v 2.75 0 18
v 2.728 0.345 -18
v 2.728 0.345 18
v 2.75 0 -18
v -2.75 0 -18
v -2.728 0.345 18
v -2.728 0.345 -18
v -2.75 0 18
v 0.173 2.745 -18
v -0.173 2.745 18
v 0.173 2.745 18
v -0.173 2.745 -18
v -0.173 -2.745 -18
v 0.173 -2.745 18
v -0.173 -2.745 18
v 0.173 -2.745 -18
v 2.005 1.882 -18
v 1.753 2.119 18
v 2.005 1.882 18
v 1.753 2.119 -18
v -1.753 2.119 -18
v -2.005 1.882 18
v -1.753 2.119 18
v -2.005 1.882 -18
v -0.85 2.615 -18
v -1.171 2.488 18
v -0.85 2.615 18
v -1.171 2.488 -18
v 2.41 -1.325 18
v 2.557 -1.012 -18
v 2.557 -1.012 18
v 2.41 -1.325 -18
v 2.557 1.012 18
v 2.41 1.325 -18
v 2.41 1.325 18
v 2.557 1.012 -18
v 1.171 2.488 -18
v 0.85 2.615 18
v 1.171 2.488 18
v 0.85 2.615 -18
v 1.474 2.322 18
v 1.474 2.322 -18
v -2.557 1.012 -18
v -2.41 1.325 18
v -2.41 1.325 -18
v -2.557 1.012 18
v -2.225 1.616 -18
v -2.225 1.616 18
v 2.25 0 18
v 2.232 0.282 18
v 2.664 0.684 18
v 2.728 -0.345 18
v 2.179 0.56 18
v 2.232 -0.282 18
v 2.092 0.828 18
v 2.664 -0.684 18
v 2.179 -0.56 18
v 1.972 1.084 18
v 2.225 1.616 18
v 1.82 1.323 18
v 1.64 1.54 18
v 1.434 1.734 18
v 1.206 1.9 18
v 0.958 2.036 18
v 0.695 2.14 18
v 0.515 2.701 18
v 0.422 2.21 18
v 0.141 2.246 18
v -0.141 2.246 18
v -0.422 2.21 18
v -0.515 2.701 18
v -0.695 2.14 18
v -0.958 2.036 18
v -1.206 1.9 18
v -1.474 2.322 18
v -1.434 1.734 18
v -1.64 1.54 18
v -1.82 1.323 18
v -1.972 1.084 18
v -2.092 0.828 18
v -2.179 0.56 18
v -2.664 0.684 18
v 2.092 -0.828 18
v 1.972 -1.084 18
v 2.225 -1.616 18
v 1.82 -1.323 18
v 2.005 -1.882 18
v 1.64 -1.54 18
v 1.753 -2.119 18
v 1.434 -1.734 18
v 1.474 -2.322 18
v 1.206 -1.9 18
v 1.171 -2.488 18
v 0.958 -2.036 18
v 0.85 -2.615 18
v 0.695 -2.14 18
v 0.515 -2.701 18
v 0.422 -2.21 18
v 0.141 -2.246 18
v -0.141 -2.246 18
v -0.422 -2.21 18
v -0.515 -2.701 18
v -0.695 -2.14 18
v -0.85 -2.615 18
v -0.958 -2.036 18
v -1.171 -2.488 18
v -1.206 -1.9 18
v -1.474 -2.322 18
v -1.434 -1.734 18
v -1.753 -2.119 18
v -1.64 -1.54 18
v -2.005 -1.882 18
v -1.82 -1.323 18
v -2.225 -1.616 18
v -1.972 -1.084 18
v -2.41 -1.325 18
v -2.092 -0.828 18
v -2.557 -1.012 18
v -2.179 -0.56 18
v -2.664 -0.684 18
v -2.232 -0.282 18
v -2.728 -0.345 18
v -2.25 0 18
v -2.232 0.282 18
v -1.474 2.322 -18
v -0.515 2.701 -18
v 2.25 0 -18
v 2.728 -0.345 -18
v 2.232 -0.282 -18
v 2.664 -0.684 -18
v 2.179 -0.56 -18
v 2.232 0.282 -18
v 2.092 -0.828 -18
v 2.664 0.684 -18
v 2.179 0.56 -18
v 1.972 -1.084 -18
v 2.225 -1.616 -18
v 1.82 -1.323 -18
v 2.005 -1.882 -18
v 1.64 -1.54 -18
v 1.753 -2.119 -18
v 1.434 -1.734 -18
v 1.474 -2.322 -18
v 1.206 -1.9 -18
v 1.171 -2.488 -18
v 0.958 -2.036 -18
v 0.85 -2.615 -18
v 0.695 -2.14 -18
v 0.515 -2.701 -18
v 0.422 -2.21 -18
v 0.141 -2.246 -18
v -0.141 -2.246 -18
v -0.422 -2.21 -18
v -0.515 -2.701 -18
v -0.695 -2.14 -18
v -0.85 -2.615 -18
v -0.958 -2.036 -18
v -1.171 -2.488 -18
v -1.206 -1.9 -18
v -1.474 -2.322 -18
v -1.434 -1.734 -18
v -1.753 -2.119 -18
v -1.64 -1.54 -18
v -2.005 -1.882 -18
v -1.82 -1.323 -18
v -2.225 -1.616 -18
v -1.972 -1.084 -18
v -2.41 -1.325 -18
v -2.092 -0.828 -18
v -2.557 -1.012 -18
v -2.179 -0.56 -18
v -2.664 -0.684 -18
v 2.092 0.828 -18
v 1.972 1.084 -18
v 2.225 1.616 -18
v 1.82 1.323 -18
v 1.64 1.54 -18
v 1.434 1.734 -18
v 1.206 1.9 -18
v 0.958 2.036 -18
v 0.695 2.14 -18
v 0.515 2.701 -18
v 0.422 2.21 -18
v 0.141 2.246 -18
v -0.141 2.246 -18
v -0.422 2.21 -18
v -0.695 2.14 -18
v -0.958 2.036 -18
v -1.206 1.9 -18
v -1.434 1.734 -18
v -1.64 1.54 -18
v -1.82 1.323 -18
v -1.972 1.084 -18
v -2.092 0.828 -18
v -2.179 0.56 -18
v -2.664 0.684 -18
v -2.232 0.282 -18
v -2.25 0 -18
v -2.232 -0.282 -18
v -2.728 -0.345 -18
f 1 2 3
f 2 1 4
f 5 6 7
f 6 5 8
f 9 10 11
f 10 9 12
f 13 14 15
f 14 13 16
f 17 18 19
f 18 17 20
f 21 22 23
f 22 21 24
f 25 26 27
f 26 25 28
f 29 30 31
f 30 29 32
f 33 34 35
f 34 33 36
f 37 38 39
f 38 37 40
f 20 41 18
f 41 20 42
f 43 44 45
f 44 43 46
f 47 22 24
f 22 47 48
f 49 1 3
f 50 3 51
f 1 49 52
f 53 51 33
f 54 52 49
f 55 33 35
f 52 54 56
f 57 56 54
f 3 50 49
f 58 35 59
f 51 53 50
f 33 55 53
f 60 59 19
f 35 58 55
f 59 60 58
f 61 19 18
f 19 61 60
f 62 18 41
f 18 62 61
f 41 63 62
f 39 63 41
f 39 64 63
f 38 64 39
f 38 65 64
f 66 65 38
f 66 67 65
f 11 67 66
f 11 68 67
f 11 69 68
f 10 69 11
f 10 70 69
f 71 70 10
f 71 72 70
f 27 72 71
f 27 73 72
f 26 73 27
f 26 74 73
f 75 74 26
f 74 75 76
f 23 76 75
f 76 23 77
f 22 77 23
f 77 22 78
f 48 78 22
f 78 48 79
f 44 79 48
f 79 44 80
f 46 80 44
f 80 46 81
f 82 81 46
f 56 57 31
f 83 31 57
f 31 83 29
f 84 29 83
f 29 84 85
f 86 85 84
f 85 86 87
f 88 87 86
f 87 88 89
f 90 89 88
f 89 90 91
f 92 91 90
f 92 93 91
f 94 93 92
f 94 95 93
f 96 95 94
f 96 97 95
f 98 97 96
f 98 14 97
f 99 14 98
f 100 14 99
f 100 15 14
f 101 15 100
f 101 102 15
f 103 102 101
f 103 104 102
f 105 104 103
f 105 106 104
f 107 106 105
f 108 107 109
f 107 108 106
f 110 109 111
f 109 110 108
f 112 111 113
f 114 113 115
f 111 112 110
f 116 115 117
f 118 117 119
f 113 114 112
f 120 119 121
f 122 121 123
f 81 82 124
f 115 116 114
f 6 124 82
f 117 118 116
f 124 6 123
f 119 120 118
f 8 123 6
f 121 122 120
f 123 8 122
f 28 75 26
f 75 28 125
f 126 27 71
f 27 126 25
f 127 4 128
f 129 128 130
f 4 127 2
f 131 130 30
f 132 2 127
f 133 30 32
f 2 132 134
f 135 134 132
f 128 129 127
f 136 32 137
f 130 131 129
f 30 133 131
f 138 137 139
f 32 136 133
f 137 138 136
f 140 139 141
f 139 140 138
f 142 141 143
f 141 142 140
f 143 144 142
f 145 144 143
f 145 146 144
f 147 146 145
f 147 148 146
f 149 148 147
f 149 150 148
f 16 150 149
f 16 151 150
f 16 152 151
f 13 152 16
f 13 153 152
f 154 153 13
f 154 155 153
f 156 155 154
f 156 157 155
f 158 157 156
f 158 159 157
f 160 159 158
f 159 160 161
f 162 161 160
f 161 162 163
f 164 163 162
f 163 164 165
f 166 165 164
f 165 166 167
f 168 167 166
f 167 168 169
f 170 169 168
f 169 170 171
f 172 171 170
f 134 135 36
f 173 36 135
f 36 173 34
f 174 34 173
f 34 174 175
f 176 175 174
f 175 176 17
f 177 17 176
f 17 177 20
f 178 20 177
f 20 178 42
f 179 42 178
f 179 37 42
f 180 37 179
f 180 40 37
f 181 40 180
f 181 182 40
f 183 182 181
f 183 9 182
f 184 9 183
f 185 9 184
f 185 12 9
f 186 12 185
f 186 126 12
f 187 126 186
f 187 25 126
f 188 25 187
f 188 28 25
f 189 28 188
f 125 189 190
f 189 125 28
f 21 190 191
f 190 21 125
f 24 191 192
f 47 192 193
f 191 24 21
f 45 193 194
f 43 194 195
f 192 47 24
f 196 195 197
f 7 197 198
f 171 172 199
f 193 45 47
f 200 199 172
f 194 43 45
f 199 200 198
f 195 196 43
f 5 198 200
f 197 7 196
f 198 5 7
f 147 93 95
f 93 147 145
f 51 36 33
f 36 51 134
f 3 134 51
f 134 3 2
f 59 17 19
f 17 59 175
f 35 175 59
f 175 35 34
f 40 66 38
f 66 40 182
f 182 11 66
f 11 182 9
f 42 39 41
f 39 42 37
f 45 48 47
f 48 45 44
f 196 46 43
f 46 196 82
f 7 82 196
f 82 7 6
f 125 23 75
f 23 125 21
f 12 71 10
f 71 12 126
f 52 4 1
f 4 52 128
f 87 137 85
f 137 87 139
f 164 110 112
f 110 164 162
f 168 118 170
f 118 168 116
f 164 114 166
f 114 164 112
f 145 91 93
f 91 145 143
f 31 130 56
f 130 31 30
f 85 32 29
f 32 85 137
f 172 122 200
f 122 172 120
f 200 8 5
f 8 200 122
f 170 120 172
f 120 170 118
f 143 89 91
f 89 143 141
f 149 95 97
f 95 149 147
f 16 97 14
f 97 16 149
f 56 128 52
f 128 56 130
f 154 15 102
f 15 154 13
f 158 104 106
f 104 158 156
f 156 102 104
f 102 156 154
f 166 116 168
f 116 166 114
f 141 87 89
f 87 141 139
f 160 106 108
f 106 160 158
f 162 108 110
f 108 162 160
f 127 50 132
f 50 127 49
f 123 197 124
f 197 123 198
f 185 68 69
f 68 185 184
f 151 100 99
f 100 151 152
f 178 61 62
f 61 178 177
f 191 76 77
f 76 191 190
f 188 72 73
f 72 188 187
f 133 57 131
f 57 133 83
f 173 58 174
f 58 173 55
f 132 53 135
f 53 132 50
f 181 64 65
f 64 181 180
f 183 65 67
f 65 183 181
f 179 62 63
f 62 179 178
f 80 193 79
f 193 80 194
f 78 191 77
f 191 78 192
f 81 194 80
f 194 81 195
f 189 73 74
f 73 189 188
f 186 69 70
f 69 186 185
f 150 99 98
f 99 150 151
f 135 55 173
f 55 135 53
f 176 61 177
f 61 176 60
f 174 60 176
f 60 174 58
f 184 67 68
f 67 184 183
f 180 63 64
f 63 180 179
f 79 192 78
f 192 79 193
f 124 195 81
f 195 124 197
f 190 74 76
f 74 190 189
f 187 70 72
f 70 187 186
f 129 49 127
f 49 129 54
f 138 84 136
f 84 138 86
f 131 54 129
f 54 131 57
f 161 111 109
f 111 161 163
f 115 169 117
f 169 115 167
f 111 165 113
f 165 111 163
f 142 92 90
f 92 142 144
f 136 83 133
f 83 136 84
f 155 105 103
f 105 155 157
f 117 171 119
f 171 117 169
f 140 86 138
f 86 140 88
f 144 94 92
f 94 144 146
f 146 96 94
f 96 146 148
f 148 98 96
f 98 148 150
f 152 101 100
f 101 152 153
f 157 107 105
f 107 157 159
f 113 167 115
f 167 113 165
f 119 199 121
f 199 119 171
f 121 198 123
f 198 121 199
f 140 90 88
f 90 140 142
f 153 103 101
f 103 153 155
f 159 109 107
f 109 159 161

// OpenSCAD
$fn = 50;


difference() {
	union() {
		translate(v = [0, 0, -18.0000000000]) {
			cylinder(h = 36, r = 2.7500000000);
		}
	}
	union() {
		translate(v = [0, 0, -100.0000000000]) {
			cylinder(h = 200, r = 2.2500000000);
		}
	}
}
